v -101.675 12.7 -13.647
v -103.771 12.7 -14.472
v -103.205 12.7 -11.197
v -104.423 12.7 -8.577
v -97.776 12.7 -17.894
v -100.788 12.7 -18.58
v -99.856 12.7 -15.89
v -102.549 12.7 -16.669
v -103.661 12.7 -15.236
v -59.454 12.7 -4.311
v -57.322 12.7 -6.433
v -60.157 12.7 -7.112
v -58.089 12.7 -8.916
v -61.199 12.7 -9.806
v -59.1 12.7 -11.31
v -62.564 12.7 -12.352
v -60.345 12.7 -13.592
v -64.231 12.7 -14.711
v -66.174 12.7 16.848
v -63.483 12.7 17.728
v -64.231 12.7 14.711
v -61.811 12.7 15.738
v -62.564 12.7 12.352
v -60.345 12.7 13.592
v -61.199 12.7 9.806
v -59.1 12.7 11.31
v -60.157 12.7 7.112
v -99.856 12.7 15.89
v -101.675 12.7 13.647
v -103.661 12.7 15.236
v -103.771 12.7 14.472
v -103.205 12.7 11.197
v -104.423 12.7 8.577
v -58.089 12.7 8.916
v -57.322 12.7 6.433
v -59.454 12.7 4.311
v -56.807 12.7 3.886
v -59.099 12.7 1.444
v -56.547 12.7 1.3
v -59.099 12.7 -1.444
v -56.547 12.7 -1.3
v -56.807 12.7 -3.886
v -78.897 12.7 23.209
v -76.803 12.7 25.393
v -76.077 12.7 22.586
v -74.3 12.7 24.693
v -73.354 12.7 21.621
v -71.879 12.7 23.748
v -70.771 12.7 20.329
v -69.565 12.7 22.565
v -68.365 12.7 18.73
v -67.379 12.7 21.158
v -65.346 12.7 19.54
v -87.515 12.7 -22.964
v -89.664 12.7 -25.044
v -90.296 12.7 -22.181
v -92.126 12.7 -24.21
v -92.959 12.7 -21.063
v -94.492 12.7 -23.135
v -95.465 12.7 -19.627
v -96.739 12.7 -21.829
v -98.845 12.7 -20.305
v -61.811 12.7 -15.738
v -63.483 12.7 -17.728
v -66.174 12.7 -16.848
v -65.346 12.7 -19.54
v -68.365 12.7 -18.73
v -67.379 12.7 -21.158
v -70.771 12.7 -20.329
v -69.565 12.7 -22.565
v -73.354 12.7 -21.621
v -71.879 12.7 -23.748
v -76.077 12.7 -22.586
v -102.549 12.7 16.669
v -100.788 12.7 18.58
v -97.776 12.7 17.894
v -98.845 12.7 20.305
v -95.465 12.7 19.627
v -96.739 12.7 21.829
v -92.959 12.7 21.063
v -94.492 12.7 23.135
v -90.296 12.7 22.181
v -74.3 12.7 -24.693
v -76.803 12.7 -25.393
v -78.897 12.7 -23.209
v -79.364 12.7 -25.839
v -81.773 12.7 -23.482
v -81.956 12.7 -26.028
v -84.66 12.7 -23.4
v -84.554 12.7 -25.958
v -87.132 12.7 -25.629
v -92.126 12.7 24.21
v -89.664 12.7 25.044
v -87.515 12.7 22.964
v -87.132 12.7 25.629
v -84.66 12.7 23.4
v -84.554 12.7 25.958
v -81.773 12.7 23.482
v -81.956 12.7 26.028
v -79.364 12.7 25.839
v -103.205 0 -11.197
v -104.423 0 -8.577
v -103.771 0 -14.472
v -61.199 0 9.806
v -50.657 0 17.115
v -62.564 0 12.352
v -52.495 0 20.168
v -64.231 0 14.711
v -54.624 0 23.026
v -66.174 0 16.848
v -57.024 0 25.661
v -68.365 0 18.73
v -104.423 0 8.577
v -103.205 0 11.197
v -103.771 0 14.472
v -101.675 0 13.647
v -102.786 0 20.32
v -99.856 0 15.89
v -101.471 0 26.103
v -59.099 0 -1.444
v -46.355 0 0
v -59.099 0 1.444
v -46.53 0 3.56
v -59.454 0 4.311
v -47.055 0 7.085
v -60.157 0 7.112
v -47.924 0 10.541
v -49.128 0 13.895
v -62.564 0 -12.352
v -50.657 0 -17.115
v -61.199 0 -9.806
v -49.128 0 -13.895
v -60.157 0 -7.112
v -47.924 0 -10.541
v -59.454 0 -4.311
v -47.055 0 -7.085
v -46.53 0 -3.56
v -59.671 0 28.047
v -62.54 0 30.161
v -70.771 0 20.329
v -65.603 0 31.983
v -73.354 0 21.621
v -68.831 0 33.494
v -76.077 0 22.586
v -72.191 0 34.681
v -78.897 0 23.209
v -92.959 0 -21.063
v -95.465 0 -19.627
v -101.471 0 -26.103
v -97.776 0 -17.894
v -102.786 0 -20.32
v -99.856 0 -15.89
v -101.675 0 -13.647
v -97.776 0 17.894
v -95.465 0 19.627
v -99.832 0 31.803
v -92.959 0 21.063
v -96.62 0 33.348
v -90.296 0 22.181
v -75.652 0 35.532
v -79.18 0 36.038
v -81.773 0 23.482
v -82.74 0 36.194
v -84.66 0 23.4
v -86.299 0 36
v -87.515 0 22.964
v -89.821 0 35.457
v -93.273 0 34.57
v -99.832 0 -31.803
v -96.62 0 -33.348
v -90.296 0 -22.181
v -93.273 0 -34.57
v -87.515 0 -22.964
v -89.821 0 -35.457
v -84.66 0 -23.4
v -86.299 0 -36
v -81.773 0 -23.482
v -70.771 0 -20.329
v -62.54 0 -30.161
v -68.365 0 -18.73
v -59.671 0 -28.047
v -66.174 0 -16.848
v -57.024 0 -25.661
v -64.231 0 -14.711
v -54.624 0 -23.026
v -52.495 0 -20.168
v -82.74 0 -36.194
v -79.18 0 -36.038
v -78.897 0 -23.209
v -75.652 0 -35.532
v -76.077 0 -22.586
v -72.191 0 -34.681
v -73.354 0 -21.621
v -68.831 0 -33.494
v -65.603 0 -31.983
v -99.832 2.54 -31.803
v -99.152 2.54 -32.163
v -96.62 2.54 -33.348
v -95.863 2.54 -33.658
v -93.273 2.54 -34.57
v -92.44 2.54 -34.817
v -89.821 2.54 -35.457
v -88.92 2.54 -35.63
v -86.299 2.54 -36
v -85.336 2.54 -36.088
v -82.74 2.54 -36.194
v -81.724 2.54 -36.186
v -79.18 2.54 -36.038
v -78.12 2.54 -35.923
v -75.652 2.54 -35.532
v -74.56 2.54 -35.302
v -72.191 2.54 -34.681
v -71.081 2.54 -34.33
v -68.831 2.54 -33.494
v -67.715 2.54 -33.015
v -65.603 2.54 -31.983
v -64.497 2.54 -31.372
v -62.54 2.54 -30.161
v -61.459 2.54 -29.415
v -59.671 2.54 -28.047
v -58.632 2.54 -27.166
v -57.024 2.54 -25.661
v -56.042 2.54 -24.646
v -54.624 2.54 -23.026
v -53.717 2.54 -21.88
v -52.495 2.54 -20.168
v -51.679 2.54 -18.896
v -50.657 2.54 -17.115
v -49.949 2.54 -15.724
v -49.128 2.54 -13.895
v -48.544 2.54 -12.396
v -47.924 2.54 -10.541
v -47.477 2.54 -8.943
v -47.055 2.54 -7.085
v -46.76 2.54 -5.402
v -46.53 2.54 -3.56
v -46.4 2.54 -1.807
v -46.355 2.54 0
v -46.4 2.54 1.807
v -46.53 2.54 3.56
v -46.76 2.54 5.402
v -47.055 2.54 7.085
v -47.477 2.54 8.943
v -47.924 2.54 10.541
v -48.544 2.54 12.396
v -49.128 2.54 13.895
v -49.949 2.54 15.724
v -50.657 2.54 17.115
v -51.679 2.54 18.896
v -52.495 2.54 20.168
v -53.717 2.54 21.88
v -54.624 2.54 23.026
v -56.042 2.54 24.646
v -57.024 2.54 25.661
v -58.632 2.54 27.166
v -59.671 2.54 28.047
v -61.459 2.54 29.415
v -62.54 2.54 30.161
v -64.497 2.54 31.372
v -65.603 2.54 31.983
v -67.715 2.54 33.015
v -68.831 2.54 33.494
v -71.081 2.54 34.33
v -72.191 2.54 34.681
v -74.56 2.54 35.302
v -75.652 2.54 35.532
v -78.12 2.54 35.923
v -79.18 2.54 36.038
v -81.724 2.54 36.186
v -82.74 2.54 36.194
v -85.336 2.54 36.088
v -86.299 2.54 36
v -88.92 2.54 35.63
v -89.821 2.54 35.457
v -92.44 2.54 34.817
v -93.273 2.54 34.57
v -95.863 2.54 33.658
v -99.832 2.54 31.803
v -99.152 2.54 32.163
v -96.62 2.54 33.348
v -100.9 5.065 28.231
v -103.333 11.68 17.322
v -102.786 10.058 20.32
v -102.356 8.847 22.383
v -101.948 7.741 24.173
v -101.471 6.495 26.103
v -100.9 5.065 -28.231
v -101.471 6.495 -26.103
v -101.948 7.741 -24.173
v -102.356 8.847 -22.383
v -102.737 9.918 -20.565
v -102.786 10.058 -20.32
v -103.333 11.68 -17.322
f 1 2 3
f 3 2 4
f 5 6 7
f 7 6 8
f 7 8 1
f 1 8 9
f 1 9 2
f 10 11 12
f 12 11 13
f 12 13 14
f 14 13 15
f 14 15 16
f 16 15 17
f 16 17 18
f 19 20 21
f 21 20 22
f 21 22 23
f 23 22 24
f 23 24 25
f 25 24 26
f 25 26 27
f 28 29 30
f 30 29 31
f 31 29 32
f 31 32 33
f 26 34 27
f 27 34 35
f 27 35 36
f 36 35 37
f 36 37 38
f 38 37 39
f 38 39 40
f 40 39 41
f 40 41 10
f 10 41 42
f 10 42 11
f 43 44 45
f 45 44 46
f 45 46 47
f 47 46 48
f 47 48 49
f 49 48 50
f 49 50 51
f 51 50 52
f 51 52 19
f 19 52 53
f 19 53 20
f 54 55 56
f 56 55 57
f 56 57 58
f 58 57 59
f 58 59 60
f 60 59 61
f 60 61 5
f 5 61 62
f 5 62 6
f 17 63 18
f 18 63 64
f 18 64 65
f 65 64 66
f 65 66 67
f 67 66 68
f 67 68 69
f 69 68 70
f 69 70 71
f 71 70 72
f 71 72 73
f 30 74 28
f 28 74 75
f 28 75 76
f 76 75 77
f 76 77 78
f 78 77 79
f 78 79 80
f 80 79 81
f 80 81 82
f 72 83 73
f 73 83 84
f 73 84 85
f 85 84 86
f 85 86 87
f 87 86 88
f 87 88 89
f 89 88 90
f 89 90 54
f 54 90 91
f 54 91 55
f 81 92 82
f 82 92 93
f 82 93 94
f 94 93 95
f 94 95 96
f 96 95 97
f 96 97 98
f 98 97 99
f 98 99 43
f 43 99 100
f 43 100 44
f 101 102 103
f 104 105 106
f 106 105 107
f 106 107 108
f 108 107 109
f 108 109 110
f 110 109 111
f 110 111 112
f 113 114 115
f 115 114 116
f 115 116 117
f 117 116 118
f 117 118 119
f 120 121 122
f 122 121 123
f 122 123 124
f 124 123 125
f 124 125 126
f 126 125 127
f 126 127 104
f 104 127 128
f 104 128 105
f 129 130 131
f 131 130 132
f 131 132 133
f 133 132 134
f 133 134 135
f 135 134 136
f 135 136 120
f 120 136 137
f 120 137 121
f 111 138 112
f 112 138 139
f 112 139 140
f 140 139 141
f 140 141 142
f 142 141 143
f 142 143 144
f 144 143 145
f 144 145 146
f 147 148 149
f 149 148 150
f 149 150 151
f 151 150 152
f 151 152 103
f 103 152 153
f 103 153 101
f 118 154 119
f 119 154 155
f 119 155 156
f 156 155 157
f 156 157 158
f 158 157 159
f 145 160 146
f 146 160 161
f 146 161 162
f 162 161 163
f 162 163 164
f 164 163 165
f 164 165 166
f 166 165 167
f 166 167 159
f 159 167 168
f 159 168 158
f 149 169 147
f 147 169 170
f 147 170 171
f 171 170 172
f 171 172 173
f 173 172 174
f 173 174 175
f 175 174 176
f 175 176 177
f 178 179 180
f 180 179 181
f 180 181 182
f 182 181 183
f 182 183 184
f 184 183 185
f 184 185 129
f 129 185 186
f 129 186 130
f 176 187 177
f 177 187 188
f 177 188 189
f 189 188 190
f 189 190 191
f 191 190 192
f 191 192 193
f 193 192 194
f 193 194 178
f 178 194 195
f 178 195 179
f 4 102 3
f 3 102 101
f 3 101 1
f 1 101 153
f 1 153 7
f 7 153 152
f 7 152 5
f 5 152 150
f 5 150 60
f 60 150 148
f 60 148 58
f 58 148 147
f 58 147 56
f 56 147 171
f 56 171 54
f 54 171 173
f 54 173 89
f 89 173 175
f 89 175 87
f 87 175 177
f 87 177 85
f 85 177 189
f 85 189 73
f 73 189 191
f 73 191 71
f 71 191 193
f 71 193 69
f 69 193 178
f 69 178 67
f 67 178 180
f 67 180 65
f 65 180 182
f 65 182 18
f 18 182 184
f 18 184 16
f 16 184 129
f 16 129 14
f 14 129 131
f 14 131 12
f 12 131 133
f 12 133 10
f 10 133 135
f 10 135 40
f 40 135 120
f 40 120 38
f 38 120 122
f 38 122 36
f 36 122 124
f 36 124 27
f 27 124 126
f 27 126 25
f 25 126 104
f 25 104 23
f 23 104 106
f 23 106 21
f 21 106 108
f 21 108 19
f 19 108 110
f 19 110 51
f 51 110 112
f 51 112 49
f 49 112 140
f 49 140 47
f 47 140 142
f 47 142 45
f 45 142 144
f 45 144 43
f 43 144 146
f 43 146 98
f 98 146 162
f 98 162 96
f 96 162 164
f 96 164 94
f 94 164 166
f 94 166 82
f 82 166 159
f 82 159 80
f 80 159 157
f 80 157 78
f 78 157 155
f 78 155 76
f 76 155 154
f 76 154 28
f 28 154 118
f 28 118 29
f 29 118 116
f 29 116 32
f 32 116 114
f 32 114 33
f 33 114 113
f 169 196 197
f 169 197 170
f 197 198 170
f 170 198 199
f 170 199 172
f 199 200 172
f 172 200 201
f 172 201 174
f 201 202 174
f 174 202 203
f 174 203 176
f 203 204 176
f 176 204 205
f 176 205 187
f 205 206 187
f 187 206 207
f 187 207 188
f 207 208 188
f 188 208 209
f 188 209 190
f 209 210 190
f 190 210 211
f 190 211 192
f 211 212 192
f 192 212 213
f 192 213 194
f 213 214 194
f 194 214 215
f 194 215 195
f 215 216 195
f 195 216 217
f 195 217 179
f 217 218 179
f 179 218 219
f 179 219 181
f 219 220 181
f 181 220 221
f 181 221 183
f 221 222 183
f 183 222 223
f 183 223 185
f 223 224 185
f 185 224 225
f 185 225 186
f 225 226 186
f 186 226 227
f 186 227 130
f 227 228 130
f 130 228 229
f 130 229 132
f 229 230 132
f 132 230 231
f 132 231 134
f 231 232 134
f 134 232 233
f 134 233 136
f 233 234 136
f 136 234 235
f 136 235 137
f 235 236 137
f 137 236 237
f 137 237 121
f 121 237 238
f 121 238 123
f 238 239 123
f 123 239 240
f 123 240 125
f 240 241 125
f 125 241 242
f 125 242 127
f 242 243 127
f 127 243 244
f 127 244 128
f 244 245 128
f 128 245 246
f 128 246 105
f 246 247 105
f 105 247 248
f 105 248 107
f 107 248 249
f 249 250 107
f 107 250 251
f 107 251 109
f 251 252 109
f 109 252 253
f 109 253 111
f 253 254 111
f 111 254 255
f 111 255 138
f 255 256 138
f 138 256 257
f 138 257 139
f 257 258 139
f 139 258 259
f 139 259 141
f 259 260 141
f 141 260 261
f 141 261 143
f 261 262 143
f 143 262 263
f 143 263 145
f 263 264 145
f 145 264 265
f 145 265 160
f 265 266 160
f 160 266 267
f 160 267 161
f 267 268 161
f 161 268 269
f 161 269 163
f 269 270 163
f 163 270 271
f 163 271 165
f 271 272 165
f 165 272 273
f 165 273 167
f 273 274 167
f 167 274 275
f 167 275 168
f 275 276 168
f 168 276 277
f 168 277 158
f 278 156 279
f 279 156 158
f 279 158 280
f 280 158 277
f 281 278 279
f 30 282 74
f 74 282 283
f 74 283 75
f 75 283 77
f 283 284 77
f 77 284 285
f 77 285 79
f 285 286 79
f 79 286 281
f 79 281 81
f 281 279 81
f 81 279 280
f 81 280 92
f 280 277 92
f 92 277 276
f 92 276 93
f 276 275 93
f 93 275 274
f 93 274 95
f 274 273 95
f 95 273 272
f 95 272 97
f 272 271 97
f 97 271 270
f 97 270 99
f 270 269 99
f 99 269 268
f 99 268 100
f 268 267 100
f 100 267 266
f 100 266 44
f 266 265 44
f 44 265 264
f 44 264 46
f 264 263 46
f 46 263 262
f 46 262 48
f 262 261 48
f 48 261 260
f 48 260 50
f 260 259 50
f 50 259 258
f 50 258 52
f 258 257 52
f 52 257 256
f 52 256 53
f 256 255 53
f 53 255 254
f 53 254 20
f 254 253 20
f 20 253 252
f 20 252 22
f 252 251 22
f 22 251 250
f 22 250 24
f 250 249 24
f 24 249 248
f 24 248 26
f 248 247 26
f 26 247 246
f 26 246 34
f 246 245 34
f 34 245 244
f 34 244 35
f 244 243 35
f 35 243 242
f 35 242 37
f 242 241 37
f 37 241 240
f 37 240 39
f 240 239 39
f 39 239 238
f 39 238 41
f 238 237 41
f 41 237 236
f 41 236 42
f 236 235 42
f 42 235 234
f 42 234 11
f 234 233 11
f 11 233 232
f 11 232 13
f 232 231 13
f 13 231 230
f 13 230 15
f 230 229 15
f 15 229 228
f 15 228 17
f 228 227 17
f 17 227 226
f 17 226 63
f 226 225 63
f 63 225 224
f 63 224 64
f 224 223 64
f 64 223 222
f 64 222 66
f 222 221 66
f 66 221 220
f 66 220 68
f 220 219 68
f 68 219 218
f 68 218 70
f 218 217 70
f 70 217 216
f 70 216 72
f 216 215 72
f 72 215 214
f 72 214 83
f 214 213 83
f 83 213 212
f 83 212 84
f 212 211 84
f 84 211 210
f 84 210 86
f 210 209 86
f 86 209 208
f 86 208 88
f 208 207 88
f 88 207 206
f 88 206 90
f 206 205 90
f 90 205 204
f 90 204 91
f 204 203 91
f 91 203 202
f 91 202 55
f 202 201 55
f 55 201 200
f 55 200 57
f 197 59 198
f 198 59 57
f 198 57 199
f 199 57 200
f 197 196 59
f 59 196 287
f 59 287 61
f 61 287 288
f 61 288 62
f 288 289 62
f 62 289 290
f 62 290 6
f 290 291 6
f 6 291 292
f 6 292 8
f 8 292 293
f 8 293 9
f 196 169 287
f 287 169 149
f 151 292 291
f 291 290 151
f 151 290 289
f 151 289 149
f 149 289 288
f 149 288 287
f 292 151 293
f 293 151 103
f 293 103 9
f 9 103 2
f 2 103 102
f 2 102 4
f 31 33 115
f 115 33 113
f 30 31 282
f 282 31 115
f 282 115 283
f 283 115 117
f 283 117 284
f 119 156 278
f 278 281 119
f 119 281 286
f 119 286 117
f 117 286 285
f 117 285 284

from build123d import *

# Parameters (mm, degrees)
SKETCH1_R               = 26.035
SKETCH1_R_2             = 23.495
BOSS_EXTRUDE1_DEPTH     = 12.7
CUT_EXTRUDE1_DEPTH      = 125.786790367
CUT_EXTRUDE1_DEPTH_BACK = 125.786790367


with BuildPart() as part:
    # Sketch1 → Boss-Extrude1 (new body)
    with BuildSketch(Plane(origin=(0, 0, 0), x_dir=(1, 0, 0), z_dir=(0, 1, 0))):
        with Locations(Location((-82.55, 0, 0), (0, 0, 270))):
            Circle(SKETCH1_R)
        with Locations(Location((-82.55, 0, 0), (0, 0, 270))):
            Circle(SKETCH1_R_2, mode=Mode.SUBTRACT)
    extrude(amount=BOSS_EXTRUDE1_DEPTH)

    # Sketch2 → Revolve1 (revolve)
    with BuildSketch(Plane(origin=(-82.55, 0, 0), x_dir=(0, -1, 0), z_dir=(-1, 0, 0)), mode=Mode.PRIVATE) as revolve1_sk:
        Polygon((0, -26.035), (0, -36.195), (-2.54, -36.195), (-12.7, -26.035), align=None)
    revolve(revolve1_sk.sketch.rotate(Axis((-82.55, 12.7, 0), (0, -1, 0)), 180), axis=Axis((-82.55, 12.7, 0), (0, -1, 0)))

    # Sketch3 → Cut-Extrude1 (cut, two sides: drawn at the far end of the back side and taken through both)
    with BuildSketch(Plane(origin=(0, 12.7, 0), x_dir=(1, 0, 0), z_dir=(0, 1, 0)).offset(-CUT_EXTRUDE1_DEPTH_BACK)):
        with BuildLine():
            ThreePointArc((-99.831769231, 31.802806122), (-104.775, 0), (-99.831769231, -31.802806122))
            ThreePointArc((-99.831769231, -31.802806122), (-118.745, 0), (-99.831769231, 31.802806122))
        make_face()
    extrude(amount=CUT_EXTRUDE1_DEPTH + CUT_EXTRUDE1_DEPTH_BACK, mode=Mode.SUBTRACT)


solid = part.part
